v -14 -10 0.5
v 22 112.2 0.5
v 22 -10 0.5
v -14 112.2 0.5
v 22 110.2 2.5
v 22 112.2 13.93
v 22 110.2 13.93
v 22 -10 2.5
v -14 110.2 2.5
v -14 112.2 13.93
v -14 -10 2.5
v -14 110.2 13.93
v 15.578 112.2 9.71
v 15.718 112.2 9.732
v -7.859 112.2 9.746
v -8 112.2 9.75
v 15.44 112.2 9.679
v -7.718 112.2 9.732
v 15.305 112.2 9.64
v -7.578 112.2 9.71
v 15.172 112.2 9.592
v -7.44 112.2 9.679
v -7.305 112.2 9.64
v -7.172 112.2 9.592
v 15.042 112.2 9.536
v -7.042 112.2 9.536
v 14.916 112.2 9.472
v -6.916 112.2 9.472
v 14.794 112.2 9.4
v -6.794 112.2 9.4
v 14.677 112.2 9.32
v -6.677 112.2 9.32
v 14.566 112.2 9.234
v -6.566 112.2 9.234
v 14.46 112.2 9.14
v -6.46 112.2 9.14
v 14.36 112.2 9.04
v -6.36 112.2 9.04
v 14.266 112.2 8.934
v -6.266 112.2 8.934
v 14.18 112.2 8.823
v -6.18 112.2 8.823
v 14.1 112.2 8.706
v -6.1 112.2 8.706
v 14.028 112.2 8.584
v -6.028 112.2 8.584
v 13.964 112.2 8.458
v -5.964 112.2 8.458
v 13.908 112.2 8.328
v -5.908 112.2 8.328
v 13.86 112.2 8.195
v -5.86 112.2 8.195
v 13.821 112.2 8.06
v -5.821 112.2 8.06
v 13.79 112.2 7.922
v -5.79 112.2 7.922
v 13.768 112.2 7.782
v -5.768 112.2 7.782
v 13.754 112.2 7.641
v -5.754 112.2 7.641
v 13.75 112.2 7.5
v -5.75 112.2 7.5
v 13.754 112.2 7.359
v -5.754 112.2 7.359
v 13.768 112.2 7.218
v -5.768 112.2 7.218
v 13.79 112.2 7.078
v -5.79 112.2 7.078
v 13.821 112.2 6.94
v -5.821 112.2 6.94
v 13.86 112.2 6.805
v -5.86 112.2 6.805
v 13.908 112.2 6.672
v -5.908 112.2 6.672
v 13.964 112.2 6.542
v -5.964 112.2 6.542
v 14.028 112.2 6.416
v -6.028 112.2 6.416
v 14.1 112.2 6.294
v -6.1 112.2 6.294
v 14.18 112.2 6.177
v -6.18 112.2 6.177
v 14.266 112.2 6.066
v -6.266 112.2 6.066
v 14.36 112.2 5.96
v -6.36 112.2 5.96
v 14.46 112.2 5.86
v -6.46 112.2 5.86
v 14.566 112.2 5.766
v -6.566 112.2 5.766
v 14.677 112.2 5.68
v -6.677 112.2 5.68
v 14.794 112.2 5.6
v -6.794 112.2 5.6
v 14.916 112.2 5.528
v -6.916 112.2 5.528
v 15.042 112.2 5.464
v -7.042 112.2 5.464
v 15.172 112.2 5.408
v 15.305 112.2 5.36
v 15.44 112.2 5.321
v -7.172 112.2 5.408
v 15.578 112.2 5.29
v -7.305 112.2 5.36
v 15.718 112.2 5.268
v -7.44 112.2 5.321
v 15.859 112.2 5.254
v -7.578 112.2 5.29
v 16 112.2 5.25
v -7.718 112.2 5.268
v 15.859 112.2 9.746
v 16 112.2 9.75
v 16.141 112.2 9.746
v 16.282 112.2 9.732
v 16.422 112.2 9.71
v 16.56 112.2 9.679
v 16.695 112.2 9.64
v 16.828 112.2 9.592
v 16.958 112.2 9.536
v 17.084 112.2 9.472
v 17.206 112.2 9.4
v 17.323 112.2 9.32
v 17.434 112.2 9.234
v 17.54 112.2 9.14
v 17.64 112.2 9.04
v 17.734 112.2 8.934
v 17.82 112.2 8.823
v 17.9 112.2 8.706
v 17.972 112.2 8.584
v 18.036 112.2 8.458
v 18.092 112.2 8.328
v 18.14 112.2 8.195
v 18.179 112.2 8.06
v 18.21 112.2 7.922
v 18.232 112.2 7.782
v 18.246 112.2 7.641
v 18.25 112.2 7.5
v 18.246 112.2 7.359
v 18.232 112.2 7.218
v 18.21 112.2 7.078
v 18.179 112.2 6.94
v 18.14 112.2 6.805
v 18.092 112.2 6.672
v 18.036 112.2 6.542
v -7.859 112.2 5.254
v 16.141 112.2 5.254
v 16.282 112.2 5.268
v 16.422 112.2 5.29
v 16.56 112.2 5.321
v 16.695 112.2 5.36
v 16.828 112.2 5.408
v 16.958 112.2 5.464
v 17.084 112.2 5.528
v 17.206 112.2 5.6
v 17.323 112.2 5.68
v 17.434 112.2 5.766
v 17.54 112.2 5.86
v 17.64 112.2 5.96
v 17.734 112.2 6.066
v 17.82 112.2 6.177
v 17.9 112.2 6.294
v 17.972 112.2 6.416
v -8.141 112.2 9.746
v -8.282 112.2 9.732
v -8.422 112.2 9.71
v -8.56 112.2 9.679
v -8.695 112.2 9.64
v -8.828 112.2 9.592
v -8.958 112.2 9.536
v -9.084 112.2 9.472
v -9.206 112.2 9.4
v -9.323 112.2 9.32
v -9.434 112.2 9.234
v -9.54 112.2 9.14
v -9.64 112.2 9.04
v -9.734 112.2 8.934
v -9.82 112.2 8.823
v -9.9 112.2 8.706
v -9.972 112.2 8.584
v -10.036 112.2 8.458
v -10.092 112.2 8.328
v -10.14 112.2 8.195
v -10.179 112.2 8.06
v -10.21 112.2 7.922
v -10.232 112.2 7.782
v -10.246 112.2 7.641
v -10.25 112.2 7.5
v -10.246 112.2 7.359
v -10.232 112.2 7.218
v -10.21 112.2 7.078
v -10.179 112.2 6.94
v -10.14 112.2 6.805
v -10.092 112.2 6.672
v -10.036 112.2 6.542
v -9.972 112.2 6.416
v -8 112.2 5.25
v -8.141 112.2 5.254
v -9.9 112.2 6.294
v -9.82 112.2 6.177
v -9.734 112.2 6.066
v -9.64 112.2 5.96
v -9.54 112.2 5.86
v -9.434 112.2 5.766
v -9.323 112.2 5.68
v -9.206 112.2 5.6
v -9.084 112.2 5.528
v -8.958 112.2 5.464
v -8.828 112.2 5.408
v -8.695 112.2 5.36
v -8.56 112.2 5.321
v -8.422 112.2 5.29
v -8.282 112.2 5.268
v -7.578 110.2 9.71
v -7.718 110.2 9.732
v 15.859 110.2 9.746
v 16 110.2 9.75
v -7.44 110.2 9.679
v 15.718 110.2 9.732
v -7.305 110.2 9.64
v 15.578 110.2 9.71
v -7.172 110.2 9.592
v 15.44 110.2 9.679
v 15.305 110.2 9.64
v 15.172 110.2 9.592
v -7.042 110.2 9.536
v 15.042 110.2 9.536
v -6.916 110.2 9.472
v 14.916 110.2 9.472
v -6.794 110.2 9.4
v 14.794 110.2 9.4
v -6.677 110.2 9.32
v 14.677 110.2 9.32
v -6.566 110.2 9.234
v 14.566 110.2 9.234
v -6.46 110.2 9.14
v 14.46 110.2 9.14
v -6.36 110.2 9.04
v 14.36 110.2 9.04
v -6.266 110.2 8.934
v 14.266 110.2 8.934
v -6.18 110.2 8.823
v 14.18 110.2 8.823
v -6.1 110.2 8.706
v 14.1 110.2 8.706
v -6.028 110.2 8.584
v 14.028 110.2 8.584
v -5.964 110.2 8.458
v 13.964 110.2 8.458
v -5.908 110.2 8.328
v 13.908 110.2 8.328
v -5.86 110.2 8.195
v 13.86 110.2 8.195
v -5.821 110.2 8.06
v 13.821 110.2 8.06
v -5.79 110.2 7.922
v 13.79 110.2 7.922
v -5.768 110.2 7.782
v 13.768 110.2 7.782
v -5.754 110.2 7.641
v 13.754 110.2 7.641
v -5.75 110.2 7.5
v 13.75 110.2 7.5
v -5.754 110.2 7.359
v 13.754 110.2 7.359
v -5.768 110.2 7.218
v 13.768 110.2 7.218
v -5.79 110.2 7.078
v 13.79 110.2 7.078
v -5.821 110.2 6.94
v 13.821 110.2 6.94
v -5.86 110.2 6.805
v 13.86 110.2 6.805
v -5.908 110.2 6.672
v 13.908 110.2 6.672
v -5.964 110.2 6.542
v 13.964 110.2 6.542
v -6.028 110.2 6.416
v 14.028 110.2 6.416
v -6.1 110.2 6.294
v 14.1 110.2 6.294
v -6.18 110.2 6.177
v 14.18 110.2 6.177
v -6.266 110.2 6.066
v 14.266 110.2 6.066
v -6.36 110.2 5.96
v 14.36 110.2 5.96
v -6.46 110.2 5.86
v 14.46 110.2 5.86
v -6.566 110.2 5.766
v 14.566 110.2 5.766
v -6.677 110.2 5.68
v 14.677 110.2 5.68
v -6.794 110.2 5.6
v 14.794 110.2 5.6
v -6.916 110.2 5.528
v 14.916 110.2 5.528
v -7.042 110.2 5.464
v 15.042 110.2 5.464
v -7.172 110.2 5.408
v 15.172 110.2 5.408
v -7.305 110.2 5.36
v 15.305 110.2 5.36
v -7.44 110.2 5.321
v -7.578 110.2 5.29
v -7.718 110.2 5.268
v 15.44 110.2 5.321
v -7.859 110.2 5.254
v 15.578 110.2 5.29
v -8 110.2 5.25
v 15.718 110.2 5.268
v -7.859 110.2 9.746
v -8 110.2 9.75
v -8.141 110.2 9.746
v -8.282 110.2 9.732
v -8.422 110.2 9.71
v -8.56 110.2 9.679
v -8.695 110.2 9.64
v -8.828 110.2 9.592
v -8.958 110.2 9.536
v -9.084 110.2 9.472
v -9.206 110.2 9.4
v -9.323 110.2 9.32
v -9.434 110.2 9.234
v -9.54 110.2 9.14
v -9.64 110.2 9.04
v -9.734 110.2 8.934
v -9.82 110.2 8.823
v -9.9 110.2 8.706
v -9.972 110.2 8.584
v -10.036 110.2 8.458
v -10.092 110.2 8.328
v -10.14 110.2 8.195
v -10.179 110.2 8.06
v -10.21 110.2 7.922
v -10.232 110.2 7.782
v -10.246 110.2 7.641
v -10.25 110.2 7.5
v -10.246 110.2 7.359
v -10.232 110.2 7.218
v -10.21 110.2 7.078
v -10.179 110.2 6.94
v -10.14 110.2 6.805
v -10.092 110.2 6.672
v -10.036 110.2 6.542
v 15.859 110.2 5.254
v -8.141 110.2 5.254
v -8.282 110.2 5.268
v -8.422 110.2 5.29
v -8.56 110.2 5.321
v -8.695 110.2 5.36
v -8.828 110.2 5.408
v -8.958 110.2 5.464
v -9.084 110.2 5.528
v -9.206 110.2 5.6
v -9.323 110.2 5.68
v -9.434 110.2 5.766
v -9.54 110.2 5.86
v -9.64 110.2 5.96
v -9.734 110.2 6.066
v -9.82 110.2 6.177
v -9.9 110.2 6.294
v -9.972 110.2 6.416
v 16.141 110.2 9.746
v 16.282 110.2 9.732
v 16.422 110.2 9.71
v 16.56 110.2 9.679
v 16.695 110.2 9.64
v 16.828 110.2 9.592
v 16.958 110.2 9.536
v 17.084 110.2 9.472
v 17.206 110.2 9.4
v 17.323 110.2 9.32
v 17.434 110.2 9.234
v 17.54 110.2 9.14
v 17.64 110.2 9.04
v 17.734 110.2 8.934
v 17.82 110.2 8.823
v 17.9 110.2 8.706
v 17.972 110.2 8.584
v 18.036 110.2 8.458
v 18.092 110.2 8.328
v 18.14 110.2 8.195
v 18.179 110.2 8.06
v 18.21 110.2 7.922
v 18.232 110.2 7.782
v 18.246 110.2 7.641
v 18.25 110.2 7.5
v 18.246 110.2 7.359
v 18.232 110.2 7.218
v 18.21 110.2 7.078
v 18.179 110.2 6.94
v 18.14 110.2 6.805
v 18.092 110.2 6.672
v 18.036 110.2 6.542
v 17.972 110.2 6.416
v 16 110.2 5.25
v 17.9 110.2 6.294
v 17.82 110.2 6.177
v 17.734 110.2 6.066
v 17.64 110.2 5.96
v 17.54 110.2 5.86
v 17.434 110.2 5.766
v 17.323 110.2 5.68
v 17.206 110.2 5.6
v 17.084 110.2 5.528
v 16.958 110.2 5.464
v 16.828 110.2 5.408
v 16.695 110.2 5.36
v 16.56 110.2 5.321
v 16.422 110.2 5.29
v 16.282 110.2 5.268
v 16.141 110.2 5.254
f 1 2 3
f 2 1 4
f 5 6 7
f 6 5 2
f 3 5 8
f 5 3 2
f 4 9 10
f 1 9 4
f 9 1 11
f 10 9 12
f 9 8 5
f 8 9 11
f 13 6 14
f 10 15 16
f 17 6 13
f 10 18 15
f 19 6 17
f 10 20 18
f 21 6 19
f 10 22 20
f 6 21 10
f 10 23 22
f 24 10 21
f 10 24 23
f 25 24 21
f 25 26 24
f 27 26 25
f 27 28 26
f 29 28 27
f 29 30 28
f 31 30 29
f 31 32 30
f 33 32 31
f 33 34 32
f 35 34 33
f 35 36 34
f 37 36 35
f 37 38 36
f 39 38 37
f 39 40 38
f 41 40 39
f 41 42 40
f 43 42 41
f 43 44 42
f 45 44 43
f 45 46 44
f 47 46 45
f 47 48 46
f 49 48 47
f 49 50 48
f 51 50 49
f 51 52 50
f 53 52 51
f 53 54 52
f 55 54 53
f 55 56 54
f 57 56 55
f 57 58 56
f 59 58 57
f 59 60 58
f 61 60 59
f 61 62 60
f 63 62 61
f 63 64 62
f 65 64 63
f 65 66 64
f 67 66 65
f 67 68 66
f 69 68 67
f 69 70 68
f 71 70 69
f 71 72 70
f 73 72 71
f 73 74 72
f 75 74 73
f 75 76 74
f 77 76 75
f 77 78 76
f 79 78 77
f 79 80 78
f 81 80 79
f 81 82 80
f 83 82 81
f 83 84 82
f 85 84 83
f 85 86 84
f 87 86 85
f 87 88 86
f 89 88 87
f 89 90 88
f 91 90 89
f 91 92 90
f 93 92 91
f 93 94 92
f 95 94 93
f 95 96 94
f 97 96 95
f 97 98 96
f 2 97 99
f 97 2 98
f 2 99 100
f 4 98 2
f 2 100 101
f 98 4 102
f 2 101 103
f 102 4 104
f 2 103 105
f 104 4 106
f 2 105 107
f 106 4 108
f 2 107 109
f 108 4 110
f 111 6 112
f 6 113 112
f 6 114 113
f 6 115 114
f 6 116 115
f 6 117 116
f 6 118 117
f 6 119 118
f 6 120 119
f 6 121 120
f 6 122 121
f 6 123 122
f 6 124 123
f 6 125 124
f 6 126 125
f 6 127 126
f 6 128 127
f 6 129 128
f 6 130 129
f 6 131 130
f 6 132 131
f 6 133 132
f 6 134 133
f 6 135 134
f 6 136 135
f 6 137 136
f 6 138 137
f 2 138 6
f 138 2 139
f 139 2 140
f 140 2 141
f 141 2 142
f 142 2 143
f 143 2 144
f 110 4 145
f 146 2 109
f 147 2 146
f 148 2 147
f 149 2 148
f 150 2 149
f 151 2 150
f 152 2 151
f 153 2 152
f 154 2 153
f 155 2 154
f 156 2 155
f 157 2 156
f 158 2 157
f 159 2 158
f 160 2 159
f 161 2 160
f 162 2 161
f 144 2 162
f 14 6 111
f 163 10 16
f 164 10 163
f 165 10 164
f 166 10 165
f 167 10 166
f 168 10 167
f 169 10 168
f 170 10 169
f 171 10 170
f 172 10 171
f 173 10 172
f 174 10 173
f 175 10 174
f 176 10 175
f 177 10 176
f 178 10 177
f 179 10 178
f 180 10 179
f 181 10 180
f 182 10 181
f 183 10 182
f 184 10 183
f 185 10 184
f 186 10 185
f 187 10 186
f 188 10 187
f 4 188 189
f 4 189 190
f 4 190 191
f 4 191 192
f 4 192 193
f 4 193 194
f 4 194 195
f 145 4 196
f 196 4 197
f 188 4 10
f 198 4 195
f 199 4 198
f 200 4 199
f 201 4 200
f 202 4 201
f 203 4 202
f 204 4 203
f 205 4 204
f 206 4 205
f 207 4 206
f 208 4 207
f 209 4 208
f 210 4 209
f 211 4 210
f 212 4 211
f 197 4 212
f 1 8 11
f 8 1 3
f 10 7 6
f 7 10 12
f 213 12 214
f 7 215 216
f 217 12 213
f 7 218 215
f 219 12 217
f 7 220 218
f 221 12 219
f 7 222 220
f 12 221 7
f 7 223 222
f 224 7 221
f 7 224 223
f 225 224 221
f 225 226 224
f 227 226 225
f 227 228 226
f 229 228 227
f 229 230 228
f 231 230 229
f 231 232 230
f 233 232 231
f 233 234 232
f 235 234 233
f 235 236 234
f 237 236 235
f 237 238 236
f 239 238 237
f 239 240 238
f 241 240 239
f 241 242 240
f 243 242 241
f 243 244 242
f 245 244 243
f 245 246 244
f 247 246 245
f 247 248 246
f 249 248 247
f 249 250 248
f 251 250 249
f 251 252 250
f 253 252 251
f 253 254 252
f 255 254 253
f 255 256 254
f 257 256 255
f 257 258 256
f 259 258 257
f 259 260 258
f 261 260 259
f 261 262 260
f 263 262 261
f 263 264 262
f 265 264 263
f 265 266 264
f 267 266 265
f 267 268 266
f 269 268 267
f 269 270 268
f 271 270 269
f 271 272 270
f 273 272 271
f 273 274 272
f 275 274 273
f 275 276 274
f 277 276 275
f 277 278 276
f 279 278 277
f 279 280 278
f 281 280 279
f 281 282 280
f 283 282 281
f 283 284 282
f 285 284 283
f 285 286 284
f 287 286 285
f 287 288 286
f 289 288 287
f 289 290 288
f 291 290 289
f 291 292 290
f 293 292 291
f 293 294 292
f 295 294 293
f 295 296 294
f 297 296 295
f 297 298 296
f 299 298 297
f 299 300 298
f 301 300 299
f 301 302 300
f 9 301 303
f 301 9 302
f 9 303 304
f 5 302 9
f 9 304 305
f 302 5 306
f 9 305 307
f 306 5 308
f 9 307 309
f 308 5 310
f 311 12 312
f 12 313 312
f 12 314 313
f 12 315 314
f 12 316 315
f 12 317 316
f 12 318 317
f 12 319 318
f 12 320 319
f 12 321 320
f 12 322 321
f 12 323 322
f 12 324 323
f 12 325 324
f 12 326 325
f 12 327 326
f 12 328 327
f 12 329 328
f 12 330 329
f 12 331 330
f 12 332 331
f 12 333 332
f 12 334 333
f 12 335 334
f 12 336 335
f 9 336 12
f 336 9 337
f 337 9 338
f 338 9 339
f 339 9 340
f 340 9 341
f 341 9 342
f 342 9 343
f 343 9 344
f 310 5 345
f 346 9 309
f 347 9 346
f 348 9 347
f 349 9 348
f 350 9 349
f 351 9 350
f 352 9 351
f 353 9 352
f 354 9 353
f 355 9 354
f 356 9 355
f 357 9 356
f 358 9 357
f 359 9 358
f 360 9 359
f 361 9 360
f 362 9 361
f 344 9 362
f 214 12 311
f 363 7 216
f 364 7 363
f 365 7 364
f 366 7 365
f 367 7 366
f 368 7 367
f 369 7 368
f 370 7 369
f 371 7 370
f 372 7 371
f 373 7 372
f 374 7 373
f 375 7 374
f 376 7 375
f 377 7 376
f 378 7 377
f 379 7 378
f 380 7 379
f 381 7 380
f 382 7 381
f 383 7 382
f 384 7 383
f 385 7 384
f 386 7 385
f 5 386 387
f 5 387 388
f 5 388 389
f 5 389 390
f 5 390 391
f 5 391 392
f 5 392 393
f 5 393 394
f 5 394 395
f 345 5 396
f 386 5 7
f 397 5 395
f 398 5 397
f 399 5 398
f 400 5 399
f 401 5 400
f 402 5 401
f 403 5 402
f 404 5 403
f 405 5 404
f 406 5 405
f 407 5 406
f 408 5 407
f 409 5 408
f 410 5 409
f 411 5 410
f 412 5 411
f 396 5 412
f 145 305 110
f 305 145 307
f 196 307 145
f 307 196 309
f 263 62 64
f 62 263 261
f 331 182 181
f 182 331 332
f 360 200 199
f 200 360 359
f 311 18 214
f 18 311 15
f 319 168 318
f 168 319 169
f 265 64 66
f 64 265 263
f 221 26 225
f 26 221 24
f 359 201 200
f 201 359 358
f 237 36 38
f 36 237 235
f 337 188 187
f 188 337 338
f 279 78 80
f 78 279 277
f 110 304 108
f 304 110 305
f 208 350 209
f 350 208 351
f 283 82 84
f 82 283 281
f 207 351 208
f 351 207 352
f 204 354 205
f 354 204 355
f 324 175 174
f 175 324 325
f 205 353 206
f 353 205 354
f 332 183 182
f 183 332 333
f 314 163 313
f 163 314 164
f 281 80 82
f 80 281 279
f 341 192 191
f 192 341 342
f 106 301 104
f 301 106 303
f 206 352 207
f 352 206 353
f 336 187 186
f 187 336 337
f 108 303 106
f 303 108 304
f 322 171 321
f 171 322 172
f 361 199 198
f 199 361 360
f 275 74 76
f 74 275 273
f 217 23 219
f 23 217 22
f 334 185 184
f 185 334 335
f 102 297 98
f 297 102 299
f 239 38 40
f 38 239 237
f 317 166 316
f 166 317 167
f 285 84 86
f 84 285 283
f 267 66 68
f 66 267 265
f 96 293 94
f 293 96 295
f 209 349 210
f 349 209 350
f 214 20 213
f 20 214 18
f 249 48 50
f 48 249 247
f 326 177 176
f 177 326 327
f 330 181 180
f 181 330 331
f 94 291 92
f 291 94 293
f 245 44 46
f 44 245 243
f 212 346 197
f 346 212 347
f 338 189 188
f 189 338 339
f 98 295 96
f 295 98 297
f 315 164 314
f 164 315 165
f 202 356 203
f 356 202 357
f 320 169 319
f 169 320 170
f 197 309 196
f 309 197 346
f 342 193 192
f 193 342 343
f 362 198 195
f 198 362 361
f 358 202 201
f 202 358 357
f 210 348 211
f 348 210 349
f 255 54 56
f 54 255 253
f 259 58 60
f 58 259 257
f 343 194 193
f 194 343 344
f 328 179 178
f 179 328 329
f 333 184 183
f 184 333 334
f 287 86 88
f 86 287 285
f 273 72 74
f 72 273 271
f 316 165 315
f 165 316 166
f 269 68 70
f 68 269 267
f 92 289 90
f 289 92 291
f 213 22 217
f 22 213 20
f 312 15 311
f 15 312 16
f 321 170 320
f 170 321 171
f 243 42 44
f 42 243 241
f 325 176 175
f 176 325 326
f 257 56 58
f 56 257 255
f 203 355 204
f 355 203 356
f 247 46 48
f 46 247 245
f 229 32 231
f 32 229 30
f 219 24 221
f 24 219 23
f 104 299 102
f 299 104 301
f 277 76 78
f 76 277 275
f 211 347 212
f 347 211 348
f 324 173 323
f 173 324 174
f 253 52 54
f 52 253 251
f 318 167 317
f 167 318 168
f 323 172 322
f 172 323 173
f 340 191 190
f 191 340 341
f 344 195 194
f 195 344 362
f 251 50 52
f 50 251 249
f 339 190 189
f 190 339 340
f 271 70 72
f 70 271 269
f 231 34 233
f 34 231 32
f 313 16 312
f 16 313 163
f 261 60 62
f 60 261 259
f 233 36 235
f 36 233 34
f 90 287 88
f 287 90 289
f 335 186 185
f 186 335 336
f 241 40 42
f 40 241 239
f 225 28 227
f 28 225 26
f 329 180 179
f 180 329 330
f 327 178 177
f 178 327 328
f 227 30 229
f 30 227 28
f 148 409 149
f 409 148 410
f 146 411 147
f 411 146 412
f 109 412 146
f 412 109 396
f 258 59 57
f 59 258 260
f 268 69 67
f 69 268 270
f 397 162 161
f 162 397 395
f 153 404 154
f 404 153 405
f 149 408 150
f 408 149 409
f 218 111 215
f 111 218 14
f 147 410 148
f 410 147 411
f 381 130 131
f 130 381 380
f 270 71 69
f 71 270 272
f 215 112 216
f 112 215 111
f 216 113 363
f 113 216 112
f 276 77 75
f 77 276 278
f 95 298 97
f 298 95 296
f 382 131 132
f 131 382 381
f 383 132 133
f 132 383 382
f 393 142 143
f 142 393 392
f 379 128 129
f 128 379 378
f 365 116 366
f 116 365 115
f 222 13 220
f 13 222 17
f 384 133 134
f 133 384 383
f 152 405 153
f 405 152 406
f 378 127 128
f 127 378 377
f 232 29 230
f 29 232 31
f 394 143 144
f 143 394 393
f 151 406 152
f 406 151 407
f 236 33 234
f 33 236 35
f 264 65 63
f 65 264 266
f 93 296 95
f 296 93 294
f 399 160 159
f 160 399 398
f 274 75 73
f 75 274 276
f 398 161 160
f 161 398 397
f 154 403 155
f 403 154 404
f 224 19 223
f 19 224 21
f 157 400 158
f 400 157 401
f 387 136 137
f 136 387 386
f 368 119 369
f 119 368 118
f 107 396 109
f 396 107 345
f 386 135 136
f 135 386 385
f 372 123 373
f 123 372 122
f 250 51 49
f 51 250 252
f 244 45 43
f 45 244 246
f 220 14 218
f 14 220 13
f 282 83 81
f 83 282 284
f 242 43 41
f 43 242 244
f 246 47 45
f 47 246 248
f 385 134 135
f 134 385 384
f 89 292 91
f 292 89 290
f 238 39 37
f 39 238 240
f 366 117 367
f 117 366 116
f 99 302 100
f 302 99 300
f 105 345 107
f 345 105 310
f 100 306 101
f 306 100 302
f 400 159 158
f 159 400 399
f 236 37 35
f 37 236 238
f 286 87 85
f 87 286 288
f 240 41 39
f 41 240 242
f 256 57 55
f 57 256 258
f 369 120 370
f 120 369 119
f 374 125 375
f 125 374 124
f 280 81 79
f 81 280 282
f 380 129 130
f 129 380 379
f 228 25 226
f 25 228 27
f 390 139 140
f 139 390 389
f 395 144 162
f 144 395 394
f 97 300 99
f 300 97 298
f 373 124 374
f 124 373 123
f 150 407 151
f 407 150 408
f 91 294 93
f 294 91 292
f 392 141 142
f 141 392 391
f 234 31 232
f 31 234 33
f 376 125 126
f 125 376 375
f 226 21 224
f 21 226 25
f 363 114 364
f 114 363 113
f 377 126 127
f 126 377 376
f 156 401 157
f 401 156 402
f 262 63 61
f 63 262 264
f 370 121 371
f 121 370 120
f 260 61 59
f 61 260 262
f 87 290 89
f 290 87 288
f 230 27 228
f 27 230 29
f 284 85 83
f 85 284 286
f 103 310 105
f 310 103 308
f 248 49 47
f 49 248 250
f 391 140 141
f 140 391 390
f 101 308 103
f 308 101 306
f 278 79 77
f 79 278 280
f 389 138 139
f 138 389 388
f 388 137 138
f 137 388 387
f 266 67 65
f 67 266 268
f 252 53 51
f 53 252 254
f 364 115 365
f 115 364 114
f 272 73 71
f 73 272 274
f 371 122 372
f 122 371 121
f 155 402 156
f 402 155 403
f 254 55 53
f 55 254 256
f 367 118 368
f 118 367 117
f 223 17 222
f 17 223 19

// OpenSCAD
$fn = 100;

module board_holder() {
    color(c = [.3, .3, .3, 1]) {
        difference() {
            union() {

                translate([-2.5, -10, -14])
                    cube ([2, 122.2, 36]);

                translate([-13.93, 110.2, -14]) {
                    cube ([13.43, 2, 36]);
                }

            }
            union() {

                // Screw holes
                translate([-7.5, 108, -8]) {
                    rotate([90, 0, 0])
                        cylinder(h = 20, r = 2.25, center = true);
                }
                translate([-7.5, 108, 16]) {
                    rotate([90, 0, 0])
                        cylinder(h = 20, r = 2.25, center = true);
                }
            }
        }
    }
}

rotate([0, 90, 0]) {
    board_holder();
}
